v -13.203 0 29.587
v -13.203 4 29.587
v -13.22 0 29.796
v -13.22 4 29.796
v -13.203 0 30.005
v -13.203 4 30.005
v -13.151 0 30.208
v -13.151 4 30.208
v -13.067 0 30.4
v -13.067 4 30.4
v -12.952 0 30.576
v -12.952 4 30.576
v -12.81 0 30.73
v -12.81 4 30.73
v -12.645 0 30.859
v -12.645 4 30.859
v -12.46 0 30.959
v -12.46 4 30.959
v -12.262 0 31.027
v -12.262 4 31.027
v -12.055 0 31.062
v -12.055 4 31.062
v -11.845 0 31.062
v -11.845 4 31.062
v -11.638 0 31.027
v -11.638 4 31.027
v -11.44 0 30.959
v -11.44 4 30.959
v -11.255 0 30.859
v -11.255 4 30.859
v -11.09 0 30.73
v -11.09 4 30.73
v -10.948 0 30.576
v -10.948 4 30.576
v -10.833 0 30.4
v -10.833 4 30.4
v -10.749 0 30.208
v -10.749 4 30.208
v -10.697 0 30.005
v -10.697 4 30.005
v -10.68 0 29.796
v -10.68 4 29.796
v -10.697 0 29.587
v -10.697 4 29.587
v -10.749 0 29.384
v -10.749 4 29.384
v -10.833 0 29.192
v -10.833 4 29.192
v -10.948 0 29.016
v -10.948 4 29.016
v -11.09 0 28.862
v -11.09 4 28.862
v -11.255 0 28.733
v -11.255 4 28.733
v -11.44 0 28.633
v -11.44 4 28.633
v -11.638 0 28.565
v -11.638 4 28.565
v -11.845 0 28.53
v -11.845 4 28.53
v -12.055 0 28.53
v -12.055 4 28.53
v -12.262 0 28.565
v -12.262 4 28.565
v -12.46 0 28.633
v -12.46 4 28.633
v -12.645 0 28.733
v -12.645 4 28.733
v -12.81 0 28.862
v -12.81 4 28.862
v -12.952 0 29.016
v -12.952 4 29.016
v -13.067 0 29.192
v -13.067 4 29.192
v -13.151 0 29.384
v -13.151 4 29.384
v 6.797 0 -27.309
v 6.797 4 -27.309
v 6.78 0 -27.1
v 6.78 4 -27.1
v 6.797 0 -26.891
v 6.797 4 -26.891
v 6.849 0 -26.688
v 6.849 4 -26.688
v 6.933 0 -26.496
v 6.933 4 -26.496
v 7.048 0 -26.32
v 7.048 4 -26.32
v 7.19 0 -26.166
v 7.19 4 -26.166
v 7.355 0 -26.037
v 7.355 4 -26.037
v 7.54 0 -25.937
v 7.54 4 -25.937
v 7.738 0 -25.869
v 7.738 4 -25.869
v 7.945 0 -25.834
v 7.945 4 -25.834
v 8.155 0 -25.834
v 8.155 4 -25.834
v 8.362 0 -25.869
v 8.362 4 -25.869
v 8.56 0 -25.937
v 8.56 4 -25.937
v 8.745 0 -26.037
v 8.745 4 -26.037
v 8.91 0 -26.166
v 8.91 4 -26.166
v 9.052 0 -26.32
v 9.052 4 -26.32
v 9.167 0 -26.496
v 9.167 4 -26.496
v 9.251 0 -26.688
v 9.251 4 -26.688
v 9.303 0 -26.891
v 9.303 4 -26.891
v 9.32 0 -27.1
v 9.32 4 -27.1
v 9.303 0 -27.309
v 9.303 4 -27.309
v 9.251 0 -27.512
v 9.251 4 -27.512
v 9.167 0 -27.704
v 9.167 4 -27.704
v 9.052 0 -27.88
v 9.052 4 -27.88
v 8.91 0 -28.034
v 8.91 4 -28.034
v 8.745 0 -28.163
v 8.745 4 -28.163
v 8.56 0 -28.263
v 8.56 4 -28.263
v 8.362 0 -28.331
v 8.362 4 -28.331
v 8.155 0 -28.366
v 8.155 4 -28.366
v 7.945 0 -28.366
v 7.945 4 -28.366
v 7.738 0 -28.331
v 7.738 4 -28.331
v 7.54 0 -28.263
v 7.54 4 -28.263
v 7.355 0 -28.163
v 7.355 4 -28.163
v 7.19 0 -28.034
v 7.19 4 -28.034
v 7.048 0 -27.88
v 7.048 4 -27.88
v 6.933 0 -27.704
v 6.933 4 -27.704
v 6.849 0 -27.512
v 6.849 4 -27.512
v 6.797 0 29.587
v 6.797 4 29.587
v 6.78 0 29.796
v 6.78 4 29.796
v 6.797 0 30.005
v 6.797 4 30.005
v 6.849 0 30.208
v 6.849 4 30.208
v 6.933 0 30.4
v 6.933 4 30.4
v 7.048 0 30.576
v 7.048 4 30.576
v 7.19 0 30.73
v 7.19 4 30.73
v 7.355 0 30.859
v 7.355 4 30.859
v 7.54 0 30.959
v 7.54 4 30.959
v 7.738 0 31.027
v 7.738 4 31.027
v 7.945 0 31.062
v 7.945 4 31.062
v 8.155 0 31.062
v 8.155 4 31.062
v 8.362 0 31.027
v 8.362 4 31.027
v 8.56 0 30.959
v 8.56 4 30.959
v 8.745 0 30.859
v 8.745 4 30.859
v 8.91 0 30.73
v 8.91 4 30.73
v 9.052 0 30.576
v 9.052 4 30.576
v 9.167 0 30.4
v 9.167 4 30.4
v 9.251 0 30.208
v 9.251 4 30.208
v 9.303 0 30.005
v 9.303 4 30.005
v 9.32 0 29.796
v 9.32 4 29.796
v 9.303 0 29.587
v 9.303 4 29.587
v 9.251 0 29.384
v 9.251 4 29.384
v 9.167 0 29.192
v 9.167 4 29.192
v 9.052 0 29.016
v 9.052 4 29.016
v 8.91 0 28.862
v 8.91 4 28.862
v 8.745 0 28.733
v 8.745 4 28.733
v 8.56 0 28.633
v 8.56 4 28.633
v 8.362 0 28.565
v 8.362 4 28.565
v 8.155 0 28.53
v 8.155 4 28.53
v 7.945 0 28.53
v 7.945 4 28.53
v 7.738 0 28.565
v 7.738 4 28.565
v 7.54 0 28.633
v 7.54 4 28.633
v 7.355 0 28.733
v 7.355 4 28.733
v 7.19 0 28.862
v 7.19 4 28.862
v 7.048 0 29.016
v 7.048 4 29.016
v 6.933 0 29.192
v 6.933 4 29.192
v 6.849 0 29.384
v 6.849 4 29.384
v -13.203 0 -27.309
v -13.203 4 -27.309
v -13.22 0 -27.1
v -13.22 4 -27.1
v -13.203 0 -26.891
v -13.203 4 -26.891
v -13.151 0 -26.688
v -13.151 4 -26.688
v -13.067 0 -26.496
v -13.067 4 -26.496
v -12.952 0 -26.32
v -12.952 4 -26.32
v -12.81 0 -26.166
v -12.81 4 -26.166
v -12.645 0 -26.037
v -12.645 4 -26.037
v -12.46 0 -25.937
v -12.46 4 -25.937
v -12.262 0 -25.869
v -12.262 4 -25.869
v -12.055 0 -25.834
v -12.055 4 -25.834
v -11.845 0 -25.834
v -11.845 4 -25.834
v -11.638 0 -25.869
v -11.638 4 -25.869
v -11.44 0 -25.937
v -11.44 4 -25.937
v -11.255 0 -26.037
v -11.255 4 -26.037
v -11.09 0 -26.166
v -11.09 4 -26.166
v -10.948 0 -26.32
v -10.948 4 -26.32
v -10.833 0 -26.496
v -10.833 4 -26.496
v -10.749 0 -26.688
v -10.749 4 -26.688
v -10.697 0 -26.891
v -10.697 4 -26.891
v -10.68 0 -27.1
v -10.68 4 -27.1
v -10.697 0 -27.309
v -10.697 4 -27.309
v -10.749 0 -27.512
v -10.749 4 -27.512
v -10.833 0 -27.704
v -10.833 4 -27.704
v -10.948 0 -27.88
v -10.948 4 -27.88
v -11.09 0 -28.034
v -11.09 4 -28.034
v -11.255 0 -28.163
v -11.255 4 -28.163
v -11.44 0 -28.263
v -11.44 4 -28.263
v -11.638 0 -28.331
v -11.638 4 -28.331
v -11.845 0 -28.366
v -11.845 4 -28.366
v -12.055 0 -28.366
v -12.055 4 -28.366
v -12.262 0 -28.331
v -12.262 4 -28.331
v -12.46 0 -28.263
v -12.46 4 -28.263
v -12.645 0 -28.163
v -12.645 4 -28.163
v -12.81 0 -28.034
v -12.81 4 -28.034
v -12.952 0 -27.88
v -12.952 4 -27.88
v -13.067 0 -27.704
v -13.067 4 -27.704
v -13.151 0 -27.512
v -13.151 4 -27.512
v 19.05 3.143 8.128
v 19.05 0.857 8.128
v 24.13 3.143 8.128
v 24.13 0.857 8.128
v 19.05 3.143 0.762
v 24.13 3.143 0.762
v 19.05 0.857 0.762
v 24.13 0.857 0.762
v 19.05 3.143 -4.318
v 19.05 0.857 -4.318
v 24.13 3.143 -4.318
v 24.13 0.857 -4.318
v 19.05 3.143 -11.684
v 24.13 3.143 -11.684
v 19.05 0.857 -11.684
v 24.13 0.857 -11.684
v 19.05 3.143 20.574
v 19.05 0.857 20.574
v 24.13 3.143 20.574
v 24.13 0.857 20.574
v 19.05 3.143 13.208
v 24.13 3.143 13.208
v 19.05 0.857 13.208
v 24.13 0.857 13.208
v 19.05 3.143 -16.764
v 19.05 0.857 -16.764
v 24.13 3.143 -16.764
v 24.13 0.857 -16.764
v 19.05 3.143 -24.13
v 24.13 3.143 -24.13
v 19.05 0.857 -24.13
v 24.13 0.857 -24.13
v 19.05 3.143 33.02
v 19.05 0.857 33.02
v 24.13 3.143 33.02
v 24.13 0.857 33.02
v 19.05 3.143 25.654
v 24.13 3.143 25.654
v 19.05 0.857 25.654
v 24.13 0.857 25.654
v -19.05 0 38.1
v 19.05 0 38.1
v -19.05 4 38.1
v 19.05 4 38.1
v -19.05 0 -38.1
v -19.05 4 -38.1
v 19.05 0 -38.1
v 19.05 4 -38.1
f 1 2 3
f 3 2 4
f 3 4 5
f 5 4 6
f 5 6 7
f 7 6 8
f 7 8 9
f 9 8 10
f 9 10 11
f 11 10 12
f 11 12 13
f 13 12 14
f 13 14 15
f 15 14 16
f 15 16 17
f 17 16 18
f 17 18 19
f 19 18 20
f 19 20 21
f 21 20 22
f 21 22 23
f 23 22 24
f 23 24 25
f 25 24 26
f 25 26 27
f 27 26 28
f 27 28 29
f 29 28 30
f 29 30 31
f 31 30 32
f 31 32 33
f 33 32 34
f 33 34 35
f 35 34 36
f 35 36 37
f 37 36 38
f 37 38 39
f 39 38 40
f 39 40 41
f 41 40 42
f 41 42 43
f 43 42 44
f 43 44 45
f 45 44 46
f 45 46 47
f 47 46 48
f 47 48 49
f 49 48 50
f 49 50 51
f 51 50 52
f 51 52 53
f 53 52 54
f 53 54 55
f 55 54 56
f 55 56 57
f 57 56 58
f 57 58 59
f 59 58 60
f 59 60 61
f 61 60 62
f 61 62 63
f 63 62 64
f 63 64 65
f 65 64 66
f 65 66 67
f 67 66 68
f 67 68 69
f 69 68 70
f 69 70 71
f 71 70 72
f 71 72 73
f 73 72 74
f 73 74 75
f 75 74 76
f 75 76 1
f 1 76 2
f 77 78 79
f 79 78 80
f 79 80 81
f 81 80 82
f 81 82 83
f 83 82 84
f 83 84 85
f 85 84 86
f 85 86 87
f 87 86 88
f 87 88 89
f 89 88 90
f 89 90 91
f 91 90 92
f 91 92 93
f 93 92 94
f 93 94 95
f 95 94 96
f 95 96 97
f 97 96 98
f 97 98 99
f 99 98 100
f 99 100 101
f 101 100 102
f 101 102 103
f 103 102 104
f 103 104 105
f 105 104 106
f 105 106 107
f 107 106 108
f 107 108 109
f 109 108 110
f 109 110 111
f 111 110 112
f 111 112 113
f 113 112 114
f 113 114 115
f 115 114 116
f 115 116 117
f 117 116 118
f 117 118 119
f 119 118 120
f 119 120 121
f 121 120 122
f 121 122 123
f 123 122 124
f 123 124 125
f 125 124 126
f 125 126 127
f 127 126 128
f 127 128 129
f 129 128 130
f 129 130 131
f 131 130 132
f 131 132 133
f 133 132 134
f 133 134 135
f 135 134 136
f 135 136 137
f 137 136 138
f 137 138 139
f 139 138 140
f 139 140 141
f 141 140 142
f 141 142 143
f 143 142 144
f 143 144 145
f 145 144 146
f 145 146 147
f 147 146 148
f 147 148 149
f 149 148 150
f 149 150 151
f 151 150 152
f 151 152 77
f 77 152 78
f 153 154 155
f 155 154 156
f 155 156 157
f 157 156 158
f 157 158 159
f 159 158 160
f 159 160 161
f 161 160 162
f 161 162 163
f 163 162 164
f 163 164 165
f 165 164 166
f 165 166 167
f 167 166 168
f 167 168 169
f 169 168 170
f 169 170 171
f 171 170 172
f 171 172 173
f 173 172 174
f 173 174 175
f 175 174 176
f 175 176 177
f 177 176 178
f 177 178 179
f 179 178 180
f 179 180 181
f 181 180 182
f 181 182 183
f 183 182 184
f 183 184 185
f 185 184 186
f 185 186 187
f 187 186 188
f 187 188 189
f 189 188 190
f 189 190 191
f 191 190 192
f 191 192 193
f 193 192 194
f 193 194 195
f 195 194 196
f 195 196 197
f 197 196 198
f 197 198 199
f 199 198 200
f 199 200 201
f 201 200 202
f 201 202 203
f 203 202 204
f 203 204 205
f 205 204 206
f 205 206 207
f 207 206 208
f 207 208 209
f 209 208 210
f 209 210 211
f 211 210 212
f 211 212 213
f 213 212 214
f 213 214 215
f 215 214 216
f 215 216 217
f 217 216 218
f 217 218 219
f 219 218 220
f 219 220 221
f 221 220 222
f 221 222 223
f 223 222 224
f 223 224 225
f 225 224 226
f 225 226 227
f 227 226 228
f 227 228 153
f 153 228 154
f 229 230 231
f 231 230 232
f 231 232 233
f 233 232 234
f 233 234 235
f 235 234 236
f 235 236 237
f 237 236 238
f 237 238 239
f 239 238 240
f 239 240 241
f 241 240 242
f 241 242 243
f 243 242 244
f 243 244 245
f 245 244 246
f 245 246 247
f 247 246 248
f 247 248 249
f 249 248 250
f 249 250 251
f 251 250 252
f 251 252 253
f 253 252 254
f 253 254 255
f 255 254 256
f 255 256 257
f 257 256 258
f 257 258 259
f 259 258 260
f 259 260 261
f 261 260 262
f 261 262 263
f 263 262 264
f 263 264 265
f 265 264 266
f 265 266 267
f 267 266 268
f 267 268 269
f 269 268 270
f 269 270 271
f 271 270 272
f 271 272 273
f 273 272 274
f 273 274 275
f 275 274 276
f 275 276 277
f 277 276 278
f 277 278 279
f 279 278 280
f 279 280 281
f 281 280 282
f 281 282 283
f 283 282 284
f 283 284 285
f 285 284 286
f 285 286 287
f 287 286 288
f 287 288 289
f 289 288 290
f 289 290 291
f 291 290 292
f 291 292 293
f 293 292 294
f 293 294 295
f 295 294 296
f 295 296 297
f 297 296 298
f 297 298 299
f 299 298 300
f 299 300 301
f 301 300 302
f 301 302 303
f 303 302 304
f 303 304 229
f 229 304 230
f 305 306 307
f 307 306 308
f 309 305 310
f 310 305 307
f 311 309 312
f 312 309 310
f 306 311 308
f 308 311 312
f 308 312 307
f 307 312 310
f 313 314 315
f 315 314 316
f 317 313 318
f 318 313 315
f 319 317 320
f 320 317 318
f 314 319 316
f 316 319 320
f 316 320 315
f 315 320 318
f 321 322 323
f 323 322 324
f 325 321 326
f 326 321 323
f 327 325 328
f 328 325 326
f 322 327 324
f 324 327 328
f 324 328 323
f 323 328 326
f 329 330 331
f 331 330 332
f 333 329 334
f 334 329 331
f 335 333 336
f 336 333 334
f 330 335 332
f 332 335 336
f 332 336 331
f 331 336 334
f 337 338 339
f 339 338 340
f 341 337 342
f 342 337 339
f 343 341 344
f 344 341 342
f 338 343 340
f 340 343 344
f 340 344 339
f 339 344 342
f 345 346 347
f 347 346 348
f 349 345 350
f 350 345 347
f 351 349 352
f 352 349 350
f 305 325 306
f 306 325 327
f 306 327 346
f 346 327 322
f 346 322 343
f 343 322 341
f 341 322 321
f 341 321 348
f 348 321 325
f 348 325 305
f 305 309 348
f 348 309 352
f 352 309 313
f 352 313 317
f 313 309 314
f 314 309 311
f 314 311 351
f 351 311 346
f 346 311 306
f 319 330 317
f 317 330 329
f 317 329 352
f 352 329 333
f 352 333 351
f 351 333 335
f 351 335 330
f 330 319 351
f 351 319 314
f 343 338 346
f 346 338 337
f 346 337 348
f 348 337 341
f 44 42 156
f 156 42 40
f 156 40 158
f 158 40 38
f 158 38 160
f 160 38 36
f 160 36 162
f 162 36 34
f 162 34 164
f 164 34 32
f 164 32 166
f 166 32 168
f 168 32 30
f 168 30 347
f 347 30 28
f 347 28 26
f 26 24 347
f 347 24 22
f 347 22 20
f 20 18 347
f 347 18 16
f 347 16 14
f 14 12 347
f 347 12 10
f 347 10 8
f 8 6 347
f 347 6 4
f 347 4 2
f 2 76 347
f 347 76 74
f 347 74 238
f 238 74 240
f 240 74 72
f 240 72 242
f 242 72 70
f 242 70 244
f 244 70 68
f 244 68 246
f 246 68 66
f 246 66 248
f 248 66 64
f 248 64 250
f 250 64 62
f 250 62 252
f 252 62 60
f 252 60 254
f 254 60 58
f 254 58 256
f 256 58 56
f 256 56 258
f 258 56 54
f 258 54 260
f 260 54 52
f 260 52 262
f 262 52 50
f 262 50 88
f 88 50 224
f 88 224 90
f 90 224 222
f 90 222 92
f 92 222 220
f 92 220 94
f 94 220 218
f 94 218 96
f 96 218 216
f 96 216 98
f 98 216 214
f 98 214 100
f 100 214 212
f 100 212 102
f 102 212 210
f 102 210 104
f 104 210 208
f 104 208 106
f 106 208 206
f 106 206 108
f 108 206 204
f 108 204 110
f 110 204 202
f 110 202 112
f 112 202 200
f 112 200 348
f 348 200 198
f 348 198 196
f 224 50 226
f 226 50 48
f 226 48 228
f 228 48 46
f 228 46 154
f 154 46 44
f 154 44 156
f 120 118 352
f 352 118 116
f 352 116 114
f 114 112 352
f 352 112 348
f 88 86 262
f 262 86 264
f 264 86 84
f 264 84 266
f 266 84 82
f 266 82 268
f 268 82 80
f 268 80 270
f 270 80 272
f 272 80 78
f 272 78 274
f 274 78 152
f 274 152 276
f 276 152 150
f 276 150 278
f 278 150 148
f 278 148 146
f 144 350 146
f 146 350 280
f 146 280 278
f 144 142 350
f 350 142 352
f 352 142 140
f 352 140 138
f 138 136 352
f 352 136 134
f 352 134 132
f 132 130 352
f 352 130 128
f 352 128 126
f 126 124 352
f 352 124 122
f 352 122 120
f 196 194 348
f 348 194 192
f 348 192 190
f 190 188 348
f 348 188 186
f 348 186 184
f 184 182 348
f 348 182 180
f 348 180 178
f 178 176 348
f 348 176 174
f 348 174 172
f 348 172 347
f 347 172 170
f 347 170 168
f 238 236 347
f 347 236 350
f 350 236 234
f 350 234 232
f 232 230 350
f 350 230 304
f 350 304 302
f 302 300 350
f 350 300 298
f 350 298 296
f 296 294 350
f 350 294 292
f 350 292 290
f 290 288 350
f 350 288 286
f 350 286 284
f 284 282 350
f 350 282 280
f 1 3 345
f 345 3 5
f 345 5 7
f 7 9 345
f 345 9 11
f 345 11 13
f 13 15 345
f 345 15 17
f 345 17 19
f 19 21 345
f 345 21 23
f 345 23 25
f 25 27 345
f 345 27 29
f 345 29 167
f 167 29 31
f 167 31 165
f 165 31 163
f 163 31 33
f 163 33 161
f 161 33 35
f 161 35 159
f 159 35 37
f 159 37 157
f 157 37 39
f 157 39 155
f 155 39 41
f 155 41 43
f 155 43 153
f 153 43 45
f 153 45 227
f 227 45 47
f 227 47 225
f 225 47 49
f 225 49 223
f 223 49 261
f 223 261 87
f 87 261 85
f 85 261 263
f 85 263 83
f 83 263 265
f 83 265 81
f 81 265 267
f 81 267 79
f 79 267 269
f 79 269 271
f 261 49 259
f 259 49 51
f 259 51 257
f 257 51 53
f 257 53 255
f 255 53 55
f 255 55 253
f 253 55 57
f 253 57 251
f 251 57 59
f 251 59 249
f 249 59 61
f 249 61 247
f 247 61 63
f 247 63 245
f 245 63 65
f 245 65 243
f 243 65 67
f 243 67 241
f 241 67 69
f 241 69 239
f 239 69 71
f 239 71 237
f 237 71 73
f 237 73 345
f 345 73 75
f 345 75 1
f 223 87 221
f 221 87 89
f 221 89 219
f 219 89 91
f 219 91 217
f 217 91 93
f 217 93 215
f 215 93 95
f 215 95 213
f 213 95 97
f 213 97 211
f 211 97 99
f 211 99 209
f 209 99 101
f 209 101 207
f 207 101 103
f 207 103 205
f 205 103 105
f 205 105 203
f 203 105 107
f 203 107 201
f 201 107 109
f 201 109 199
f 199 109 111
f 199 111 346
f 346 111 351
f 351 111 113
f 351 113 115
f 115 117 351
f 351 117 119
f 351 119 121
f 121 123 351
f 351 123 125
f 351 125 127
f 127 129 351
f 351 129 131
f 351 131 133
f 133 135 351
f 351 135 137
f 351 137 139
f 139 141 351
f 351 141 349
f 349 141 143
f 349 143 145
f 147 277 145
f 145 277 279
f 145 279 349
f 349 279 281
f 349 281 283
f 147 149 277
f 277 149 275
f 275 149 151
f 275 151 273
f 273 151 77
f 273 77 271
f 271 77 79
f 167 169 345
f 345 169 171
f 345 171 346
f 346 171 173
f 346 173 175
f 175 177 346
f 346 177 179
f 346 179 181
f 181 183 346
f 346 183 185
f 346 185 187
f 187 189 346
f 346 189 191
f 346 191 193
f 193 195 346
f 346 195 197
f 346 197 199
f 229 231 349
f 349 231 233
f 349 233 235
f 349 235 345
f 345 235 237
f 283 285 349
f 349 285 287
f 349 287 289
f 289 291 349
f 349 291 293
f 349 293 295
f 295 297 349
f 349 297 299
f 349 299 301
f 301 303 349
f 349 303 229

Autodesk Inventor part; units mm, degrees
ref_plane "YZ Plane" through (0, 0, 0) normal (1, 0, 0) x (0, 1, 0)
ref_plane "XZ Plane" through (0, 0, 0) normal (0, 1, 0) x (-1, 0, 0)
ref_plane "XY Plane" through (0, 0, 0) normal (0, 0, 1) x (1, 0, 0)
sketch "Sketch1" plane through (0, 0, 0) normal (0, 1, 0) x (-1, 0, 0)
  line L0 (19.05, 38.1) -> (-19.05, 38.1)
  line L1 (-19.05, 38.1) -> (-19.05, -38.1)
  line L2 (-19.05, -38.1) -> (19.05, -38.1)
  line L3 (19.05, -38.1) -> (19.05, 38.1)
  point P0 (0, 0)
  point P1 (19.05, 0)
  point P2 (0, -38.1)
  dimension "d0" = 76.2
  dimension "d1" = 38.1
extrude "Extrusion1" add sketch "Sketch1" along normal blind 4
sketch "Sketch2" plane through (19.05, 0, 38.1) normal (1, 0, 0) x (0, 0, -1)
  line L0 (5.08, 3.143) -> (12.446, 3.143)
  line L1 (12.446, 3.143) -> (12.446, 0.857)
  line L2 (12.446, 0.857) -> (5.08, 0.857)
  line L3 (5.08, 0.857) -> (5.08, 3.143)
  line L4 (0, 0) -> (0, 4) projected
  line L5 (0, 4) -> (76.2, 4) projected
  line L6 (17.526, 3.143) -> (24.892, 3.143)
  line L7 (24.892, 3.143) -> (24.892, 0.857)
  line L8 (24.892, 0.857) -> (17.526, 0.857)
  line L9 (17.526, 0.857) -> (17.526, 3.143)
  line L10 (29.972, 3.143) -> (37.338, 3.143)
  line L11 (37.338, 3.143) -> (37.338, 0.857)
  line L12 (37.338, 0.857) -> (29.972, 0.857)
  line L13 (29.972, 0.857) -> (29.972, 3.143)
  line L14 (42.418, 3.143) -> (49.784, 3.143)
  line L15 (49.784, 3.143) -> (49.784, 0.857)
  line L16 (49.784, 0.857) -> (42.418, 0.857)
  line L17 (42.418, 0.857) -> (42.418, 3.143)
  line L18 (54.864, 3.143) -> (62.23, 3.143)
  line L19 (62.23, 3.143) -> (62.23, 0.857)
  line L20 (62.23, 0.857) -> (54.864, 0.857)
  line L21 (54.864, 0.857) -> (54.864, 3.143)
  point P0 (38.1, 0)
  point P1 (5.08, 2)
  point P2 (0, 2)
  point P3 (17.526, 2)
  point P4 (0, 2)
  point P5 (29.972, 2)
  point P6 (0, 2)
  point P7 (42.418, 2)
  point P8 (0, 2)
  dimension "d4" = 5.08
  dimension "d5" = 7.366
  dimension "d6" = 2.286
  dimension "d8" = 5.08
  dimension "d9" = 7.366
  dimension "d10" = 2.286
  dimension "d11" = 7.366
  dimension "d12" = 2.286
  dimension "d13" = 5.08
  dimension "d14" = 7.366
  dimension "d15" = 2.286
  dimension "d16" = 5.08
  dimension "d18" = 7.366
  dimension "d19" = 5.08
extrude "Extrusion2" add sketch "Sketch2" along normal blind 5.08
sketch "Sketch4" plane through (0, 4, 0) normal (0, 1, 0) x (1, 0, 0)
  circle A0 centre (8.05, 27.1) radius 1.27
  line L0 (19.05, -38.1) -> (19.05, 38.1) projected
  line L1 (19.05, 38.1) -> (-19.05, 38.1) projected
  circle A1 centre (-11.95, 27.1) radius 1.27
  line L2 (-19.05, 38.1) -> (-19.05, -38.1) projected
  circle A2 centre (8.05, -29.796) radius 1.27
  circle A3 centre (-11.95, -29.796) radius 1.27
  line L3 (-19.05, -38.1) -> (19.05, -38.1) projected
  point P0 (0, 0)
  dimension "d27" = 11
  dimension "d28" = 11
  dimension "d31" = 2.54
  dimension "d32" = 2.54
  dimension "d37" = 2.54
  dimension "d38" = 2.54
  dimension "d41" = 20
  dimension "d42" = 56.896
  dimension "d43" = 56.896
extrude "Extrusion4" cut sketch "Sketch4" against normal blind 7.1628 contours A0 | A1 | A2 | A3
properties part number "pca"
